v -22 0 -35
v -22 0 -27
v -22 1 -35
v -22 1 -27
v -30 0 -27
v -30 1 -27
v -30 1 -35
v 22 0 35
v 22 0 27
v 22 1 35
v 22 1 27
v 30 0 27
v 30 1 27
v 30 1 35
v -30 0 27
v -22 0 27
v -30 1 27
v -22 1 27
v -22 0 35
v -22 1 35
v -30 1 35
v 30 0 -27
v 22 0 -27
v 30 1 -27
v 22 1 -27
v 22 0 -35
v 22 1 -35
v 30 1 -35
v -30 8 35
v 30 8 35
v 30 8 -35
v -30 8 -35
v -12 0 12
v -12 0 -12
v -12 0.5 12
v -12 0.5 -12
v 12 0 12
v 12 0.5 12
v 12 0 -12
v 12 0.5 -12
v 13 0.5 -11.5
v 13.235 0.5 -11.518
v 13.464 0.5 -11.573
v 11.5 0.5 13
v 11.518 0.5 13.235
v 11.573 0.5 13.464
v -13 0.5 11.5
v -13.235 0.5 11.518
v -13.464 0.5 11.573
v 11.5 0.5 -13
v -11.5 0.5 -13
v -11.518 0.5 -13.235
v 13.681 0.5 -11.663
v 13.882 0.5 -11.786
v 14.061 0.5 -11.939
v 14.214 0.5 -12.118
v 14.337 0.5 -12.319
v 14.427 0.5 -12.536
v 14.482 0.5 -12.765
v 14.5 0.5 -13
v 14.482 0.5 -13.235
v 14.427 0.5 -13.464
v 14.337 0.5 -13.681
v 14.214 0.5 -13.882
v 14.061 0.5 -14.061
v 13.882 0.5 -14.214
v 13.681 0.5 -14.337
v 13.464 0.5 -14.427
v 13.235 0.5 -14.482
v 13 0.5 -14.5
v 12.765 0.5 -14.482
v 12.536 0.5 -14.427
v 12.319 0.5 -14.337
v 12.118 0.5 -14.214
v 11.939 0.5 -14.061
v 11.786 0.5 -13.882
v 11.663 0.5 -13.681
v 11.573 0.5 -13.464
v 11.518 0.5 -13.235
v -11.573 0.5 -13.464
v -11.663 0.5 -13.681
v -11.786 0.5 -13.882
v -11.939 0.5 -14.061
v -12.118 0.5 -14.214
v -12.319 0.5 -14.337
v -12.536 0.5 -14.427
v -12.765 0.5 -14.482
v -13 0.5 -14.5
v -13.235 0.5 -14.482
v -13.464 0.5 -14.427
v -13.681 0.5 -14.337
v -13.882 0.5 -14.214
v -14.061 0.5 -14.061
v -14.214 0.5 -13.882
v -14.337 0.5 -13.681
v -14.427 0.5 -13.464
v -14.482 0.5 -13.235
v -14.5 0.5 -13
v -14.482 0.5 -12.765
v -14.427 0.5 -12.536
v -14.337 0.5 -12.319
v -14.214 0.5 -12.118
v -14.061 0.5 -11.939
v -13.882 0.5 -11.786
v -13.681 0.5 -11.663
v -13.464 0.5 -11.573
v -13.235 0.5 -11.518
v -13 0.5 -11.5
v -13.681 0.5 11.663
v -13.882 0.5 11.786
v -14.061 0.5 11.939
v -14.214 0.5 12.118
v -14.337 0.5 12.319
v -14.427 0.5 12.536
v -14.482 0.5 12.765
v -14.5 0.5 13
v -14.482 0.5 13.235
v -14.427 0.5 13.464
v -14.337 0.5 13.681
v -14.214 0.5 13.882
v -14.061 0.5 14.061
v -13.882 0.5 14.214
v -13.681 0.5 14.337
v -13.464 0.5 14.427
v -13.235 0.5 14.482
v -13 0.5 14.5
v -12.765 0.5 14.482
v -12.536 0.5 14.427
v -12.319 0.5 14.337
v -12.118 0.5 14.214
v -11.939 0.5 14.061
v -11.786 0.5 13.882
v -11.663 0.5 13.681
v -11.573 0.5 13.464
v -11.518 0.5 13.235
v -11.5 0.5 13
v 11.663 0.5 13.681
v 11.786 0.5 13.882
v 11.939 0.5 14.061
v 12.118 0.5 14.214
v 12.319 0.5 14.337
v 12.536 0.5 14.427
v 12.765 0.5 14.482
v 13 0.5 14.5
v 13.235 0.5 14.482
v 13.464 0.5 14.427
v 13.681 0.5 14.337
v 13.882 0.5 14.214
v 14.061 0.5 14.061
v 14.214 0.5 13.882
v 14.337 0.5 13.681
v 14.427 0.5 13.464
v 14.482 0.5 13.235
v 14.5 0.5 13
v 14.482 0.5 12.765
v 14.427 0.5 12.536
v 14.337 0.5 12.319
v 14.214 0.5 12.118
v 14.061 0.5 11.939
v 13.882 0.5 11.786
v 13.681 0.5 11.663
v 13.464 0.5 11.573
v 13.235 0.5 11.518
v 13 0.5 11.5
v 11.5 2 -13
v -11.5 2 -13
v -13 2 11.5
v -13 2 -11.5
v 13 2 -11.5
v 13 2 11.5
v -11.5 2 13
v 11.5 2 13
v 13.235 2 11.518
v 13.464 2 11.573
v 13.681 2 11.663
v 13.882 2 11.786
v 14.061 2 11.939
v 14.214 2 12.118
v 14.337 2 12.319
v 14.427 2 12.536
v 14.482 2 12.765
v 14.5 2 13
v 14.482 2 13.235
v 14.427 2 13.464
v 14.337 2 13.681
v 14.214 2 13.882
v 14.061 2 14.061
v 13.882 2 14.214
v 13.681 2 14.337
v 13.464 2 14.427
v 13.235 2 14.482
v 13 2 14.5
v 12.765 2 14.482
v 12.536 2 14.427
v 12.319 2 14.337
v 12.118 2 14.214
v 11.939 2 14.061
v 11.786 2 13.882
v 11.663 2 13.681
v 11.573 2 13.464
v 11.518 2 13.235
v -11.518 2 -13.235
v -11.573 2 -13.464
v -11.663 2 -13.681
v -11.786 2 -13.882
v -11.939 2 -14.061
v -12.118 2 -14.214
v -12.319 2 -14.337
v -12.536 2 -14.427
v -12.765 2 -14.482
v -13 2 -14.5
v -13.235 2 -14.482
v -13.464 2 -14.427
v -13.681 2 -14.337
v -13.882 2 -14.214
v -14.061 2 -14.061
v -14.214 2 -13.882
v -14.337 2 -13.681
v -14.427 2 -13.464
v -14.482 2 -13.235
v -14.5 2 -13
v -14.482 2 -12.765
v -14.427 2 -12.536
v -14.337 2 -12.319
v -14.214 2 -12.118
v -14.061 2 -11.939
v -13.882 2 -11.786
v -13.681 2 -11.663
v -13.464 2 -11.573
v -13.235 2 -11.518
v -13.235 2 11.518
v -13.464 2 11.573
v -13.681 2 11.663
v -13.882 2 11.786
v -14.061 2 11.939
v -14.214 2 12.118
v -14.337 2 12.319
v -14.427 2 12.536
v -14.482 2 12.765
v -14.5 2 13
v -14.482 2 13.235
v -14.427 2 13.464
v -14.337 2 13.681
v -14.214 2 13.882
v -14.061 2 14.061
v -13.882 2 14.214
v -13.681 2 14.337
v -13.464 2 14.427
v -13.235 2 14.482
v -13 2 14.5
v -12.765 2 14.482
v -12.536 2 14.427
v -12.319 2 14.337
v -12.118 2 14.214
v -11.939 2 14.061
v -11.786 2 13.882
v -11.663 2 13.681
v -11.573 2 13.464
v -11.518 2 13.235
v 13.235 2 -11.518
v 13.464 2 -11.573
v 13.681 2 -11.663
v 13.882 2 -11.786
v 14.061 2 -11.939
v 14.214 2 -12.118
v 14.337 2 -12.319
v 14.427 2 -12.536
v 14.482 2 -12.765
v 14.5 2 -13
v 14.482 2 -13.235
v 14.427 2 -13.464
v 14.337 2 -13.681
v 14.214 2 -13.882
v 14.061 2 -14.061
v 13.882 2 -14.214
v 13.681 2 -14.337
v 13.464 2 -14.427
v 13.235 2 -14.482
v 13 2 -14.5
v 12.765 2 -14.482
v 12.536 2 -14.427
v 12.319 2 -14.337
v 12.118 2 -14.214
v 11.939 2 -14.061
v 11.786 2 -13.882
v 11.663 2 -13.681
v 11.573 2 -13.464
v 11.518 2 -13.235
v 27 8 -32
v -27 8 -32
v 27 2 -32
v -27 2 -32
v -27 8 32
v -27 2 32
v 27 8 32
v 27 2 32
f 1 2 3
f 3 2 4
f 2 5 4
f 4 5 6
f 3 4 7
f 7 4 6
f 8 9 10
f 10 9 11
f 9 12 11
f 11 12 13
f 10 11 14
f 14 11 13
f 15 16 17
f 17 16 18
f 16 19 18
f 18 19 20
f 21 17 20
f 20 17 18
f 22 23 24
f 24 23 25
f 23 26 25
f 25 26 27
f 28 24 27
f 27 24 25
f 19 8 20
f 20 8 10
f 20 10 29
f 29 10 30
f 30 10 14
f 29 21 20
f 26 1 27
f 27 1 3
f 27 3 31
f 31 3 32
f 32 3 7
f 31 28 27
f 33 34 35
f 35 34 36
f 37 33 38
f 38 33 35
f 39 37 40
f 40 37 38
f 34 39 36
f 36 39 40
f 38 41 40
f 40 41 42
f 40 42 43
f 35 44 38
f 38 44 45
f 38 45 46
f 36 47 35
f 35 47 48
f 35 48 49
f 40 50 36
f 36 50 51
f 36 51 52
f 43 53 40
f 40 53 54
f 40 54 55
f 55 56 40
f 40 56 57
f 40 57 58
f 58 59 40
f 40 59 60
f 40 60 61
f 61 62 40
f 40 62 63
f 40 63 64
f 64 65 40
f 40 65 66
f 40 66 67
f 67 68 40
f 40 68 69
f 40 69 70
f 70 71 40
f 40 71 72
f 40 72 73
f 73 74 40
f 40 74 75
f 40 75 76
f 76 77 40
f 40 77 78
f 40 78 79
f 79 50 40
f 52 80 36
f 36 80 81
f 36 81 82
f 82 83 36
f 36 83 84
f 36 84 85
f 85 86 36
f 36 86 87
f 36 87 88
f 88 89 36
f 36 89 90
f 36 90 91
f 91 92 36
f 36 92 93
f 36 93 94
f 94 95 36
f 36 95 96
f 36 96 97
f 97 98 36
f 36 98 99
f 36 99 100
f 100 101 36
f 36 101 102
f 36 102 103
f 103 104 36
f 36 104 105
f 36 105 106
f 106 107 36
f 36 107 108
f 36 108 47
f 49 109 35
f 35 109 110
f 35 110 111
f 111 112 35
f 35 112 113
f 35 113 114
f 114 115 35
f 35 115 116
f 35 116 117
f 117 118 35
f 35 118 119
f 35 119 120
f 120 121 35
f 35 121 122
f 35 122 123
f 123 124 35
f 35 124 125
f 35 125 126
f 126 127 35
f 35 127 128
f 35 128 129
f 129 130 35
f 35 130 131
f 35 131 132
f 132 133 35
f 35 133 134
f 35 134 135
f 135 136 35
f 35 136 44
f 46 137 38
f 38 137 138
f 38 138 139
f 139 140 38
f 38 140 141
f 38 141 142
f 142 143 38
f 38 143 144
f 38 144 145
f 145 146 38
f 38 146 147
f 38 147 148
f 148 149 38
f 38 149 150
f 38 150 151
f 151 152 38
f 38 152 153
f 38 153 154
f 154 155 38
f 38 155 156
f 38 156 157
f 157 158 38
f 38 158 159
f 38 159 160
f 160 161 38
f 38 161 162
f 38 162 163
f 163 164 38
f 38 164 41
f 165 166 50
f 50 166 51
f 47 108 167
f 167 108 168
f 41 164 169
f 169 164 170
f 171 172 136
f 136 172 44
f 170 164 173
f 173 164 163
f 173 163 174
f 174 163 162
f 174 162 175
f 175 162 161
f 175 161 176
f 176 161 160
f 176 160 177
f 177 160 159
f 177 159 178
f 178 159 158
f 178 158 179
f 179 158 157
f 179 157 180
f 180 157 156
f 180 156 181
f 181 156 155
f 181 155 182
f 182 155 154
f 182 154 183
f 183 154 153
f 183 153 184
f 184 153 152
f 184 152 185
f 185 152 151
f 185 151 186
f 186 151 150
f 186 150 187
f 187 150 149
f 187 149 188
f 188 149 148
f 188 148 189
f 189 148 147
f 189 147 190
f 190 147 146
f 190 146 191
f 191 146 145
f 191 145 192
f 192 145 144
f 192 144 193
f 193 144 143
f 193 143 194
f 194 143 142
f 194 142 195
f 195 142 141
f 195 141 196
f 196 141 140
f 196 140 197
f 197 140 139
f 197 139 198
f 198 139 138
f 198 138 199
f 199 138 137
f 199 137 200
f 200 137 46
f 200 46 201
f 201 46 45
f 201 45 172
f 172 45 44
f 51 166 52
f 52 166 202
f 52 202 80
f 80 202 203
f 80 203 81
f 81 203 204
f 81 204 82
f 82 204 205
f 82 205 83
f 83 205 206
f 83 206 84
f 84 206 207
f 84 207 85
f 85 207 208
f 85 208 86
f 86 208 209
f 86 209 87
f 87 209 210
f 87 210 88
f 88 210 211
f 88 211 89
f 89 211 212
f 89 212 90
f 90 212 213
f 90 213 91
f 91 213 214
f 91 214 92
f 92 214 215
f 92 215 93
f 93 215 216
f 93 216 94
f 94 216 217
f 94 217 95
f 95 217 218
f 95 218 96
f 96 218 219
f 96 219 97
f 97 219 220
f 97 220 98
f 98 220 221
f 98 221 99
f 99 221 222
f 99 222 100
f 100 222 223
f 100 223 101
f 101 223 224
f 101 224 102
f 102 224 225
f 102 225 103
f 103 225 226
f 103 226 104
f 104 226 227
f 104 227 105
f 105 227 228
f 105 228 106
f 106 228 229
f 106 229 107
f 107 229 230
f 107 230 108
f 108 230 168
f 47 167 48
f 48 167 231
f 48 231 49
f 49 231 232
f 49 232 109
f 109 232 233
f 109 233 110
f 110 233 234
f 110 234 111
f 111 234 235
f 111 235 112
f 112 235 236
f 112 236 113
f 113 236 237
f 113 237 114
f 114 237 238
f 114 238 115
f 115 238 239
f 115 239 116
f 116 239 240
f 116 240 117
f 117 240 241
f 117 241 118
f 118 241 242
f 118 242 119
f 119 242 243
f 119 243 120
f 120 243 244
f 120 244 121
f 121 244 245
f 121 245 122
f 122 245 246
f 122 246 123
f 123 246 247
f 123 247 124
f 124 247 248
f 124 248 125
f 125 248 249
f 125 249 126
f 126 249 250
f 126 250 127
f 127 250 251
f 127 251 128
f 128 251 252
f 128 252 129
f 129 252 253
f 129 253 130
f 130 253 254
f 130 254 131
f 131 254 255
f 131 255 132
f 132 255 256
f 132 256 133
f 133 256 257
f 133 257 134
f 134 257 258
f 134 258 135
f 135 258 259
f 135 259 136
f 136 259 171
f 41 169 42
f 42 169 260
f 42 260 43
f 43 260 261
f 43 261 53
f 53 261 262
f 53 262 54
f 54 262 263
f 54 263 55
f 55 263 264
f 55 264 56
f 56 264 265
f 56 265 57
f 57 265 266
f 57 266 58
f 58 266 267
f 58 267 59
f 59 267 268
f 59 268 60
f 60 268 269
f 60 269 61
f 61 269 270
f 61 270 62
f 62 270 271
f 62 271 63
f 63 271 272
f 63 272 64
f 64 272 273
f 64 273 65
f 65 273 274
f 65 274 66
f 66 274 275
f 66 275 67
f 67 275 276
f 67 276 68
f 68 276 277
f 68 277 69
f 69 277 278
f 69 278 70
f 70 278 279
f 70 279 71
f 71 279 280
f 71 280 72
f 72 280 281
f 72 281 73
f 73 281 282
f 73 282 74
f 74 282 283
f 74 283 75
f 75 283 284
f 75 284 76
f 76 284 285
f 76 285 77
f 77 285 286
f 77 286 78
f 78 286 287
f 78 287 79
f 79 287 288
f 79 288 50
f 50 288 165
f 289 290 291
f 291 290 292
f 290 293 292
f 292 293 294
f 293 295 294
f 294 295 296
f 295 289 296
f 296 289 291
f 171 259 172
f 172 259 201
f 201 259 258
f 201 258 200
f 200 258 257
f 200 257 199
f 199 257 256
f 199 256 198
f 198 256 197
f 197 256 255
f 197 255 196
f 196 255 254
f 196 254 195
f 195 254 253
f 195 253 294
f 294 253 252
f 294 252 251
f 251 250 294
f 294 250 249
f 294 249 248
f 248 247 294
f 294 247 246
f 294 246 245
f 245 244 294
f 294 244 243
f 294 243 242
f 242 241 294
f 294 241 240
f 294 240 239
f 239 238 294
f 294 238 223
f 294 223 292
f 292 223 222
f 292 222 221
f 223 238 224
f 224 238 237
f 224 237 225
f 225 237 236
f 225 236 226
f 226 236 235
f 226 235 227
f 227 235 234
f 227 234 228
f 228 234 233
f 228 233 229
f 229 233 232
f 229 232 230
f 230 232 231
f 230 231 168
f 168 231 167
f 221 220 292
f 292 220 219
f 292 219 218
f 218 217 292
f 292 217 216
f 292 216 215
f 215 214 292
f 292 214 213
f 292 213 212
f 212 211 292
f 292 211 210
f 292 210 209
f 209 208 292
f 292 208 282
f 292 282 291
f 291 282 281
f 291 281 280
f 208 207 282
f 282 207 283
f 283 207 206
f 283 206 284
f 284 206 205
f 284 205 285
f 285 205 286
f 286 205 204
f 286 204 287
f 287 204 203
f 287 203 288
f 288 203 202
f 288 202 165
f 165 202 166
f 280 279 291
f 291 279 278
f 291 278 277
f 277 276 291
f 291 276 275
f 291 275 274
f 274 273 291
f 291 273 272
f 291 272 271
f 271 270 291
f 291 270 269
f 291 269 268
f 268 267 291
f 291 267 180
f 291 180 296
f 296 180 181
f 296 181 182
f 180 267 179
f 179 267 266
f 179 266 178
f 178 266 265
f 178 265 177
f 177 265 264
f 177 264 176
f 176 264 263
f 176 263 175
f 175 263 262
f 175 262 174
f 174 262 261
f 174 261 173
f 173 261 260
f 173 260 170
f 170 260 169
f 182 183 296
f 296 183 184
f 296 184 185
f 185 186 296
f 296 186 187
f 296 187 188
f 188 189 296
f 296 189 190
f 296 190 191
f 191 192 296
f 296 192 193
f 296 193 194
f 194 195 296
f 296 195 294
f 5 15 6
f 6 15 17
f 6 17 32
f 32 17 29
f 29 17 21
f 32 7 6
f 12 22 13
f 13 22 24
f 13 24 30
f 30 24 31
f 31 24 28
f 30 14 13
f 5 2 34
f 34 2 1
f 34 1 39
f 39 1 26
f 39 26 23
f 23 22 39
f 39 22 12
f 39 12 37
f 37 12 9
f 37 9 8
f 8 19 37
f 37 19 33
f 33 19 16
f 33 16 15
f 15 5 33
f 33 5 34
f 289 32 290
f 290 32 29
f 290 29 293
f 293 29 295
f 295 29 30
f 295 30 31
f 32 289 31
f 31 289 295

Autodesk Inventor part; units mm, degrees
ref_plane "YZ Plane" through (0, 0, 0) normal (1, 0, 0) x (0, 1, 0)
ref_plane "XZ Plane" through (0, 0, 0) normal (0, 1, 0) x (-1, 0, 0)
ref_plane "XY Plane" through (0, 0, 0) normal (0, 0, 1) x (1, 0, 0)
sketch "Sketch1" plane through (0, 0, 0) normal (0, 1, 0) x (-1, 0, 0)
  line L0 (-30, 35) -> (30, 35)
  line L1 (30, 35) -> (30, -35)
  line L2 (30, -35) -> (-30, -35)
  line L3 (-30, -35) -> (-30, 35)
  line L4 (-30, 35) -> (30, -35) construction
  line L5 (30, 35) -> (-30, -35) construction
  point P0 (0, 0)
  dimension "d0" = 60
  dimension "d1" = 70
extrude "Extrusion1" add sketch "Sketch1" along normal blind 8
sketch "Sketch2" plane through (0, 8, 0) normal (0, 1, 0) x (1, 0, 0)
  line L0 (27, -32) -> (27, 32)
  line L1 (27, 32) -> (-27, 32)
  line L2 (-27, 32) -> (-27, -32)
  line L3 (-27, -32) -> (27, -32)
  line L4 (27, -32) -> (-27, 32) construction
  line L5 (27, 32) -> (-27, -32) construction
  point P0 (0, 0)
  dimension "d4" = 64
  dimension "d5" = 54
extrude "Extrusion2" cut sketch "Sketch2" against normal blind 6
sketch "Sketch3" plane through (0, 2, 0) normal (0, 1, 0) x (1, 0, 0)
  line L0 (-12, -12) -> (12, -12)
  line L1 (12, -12) -> (12, 12)
  line L2 (12, 12) -> (-12, 12)
  line L3 (-12, 12) -> (-12, -12)
  line L4 (-12, -12) -> (12, 12) construction
  line L5 (12, -12) -> (-12, 12) construction
  line L6 (-13, -13) -> (13, -13)
  line L7 (13, -13) -> (13, 13)
  line L8 (13, 13) -> (-13, 13)
  line L9 (-13, 13) -> (-13, -13)
  line L10 (-13, -13) -> (13, 13) construction
  line L11 (13, -13) -> (-13, 13) construction
  circle A0 centre (-13, -13) radius 1.5
  circle A1 centre (-13, 13) radius 1.5
  circle A2 centre (13, 13) radius 1.5
  circle A3 centre (13, -13) radius 1.5
  point P0 (0, 0)
  dimension "d8" = 24
  dimension "d9" = 24
  dimension "d10" = 26
  dimension "d11" = 26
  dimension "d23" = 3
  dimension "d24" = 3
  dimension "d25" = 3
  dimension "d26" = 3
extrude "Extrusion3" cut sketch "Sketch3" against normal blind 1.5
sketch "Sketch4" plane through (0, 0.5, 0) normal (0, 1, 0) x (1, 0, 0)
  line L0 (-12, -12) -> (12, -12)
  line L1 (12, -12) -> (12, 12)
  line L2 (12, 12) -> (-12, 12)
  line L3 (-12, 12) -> (-12, -12)
  line L4 (-12, -12) -> (12, 12) construction
  line L5 (12, -12) -> (-12, 12) construction
  point P0 (0, 0)
  dimension "d18" = 24
  dimension "d19" = 24
extrude "Extrusion4" cut sketch "Sketch4" against normal up to next
sketch "Sketch5" plane through (0, 2, 0) normal (0, 1, 0) x (1, 0, 0)
  point P0 (0, 0)
sketch "Sketch6" plane through (0, 2, 0) normal (0, 1, 0) x (1, 0, 0)
  line L0 (20, 34) -> (-20, 34)
  line L1 (-20, 34) -> (-20, -6)
  line L2 (-20, -6) -> (20, -6)
  line L3 (20, -6) -> (20, 34)
  line L4 (20, 34) -> (-20, -6) construction
  line L5 (-20, 34) -> (20, -6) construction
  line L6 (12, -12) -> (-12, -12) projected
  point P0 (0, 0)
  point P1 (0, 14)
  dimension "d27" = 40
  dimension "d28" = 40
  dimension "d29" = 6
sketch "Sketch7" plane through (0, 8, 0) normal (0, 1, 0) x (1, 0, 0)
  point P0 (0, 0)
sketch "Sketch8" plane through (0, 0, 0) normal (0, -1, 0) x (1, 0, 0)
  line L0 (-30, -35) -> (-30, 35) projected
  line L1 (-30, -35) -> (-22, -35)
  line L2 (-22, -35) -> (-22, -27)
  line L3 (-22, -27) -> (-30, -27)
  line L4 (-30, -27) -> (-30, -35)
  line L5 (-30, 35) -> (30, 35) projected
  line L6 (-30, 35) -> (-22, 35)
  line L7 (-22, 35) -> (-22, 27)
  line L8 (-22, 27) -> (-30, 27)
  line L9 (-30, 27) -> (-30, 35)
  line L10 (30, -35) -> (30, 35) projected
  line L11 (30, 35) -> (22, 35)
  line L12 (22, 35) -> (22, 27)
  line L13 (22, 27) -> (30, 27)
  line L14 (30, 27) -> (30, 35)
  line L15 (30, -35) -> (22, -35)
  line L16 (22, -35) -> (22, -27)
  line L17 (22, -27) -> (30, -27)
  line L18 (30, -27) -> (30, -35)
  point P0 (0, 0)
  dimension "d30" = 8
  dimension "d31" = 8
  dimension "d32" = 8
  dimension "d33" = 8
  dimension "d34" = 8
  dimension "d35" = 8
  dimension "d36" = 8
  dimension "d37" = 8
extrude "Extrusion5" cut sketch "Sketch8" against normal blind 1
sketch "Sketch9" plane through (0, 8, 0) normal (0, 1, 0) x (1, 0, 0)
  line L0 (30, 35) -> (22, 35) projected
  line L1 (22, 35) -> (22, 27) projected
  line L2 (30, 35) -> (22, 35)
  line L3 (22, 35) -> (22, 27)
  line L4 (22, 27) -> (30, 27)
  line L5 (30, 27) -> (30, 35)
  circle A0 centre (26, 31) radius 5.5
  point P0 (0, 0)
  dimension "d40" = 11
properties part number "base"
